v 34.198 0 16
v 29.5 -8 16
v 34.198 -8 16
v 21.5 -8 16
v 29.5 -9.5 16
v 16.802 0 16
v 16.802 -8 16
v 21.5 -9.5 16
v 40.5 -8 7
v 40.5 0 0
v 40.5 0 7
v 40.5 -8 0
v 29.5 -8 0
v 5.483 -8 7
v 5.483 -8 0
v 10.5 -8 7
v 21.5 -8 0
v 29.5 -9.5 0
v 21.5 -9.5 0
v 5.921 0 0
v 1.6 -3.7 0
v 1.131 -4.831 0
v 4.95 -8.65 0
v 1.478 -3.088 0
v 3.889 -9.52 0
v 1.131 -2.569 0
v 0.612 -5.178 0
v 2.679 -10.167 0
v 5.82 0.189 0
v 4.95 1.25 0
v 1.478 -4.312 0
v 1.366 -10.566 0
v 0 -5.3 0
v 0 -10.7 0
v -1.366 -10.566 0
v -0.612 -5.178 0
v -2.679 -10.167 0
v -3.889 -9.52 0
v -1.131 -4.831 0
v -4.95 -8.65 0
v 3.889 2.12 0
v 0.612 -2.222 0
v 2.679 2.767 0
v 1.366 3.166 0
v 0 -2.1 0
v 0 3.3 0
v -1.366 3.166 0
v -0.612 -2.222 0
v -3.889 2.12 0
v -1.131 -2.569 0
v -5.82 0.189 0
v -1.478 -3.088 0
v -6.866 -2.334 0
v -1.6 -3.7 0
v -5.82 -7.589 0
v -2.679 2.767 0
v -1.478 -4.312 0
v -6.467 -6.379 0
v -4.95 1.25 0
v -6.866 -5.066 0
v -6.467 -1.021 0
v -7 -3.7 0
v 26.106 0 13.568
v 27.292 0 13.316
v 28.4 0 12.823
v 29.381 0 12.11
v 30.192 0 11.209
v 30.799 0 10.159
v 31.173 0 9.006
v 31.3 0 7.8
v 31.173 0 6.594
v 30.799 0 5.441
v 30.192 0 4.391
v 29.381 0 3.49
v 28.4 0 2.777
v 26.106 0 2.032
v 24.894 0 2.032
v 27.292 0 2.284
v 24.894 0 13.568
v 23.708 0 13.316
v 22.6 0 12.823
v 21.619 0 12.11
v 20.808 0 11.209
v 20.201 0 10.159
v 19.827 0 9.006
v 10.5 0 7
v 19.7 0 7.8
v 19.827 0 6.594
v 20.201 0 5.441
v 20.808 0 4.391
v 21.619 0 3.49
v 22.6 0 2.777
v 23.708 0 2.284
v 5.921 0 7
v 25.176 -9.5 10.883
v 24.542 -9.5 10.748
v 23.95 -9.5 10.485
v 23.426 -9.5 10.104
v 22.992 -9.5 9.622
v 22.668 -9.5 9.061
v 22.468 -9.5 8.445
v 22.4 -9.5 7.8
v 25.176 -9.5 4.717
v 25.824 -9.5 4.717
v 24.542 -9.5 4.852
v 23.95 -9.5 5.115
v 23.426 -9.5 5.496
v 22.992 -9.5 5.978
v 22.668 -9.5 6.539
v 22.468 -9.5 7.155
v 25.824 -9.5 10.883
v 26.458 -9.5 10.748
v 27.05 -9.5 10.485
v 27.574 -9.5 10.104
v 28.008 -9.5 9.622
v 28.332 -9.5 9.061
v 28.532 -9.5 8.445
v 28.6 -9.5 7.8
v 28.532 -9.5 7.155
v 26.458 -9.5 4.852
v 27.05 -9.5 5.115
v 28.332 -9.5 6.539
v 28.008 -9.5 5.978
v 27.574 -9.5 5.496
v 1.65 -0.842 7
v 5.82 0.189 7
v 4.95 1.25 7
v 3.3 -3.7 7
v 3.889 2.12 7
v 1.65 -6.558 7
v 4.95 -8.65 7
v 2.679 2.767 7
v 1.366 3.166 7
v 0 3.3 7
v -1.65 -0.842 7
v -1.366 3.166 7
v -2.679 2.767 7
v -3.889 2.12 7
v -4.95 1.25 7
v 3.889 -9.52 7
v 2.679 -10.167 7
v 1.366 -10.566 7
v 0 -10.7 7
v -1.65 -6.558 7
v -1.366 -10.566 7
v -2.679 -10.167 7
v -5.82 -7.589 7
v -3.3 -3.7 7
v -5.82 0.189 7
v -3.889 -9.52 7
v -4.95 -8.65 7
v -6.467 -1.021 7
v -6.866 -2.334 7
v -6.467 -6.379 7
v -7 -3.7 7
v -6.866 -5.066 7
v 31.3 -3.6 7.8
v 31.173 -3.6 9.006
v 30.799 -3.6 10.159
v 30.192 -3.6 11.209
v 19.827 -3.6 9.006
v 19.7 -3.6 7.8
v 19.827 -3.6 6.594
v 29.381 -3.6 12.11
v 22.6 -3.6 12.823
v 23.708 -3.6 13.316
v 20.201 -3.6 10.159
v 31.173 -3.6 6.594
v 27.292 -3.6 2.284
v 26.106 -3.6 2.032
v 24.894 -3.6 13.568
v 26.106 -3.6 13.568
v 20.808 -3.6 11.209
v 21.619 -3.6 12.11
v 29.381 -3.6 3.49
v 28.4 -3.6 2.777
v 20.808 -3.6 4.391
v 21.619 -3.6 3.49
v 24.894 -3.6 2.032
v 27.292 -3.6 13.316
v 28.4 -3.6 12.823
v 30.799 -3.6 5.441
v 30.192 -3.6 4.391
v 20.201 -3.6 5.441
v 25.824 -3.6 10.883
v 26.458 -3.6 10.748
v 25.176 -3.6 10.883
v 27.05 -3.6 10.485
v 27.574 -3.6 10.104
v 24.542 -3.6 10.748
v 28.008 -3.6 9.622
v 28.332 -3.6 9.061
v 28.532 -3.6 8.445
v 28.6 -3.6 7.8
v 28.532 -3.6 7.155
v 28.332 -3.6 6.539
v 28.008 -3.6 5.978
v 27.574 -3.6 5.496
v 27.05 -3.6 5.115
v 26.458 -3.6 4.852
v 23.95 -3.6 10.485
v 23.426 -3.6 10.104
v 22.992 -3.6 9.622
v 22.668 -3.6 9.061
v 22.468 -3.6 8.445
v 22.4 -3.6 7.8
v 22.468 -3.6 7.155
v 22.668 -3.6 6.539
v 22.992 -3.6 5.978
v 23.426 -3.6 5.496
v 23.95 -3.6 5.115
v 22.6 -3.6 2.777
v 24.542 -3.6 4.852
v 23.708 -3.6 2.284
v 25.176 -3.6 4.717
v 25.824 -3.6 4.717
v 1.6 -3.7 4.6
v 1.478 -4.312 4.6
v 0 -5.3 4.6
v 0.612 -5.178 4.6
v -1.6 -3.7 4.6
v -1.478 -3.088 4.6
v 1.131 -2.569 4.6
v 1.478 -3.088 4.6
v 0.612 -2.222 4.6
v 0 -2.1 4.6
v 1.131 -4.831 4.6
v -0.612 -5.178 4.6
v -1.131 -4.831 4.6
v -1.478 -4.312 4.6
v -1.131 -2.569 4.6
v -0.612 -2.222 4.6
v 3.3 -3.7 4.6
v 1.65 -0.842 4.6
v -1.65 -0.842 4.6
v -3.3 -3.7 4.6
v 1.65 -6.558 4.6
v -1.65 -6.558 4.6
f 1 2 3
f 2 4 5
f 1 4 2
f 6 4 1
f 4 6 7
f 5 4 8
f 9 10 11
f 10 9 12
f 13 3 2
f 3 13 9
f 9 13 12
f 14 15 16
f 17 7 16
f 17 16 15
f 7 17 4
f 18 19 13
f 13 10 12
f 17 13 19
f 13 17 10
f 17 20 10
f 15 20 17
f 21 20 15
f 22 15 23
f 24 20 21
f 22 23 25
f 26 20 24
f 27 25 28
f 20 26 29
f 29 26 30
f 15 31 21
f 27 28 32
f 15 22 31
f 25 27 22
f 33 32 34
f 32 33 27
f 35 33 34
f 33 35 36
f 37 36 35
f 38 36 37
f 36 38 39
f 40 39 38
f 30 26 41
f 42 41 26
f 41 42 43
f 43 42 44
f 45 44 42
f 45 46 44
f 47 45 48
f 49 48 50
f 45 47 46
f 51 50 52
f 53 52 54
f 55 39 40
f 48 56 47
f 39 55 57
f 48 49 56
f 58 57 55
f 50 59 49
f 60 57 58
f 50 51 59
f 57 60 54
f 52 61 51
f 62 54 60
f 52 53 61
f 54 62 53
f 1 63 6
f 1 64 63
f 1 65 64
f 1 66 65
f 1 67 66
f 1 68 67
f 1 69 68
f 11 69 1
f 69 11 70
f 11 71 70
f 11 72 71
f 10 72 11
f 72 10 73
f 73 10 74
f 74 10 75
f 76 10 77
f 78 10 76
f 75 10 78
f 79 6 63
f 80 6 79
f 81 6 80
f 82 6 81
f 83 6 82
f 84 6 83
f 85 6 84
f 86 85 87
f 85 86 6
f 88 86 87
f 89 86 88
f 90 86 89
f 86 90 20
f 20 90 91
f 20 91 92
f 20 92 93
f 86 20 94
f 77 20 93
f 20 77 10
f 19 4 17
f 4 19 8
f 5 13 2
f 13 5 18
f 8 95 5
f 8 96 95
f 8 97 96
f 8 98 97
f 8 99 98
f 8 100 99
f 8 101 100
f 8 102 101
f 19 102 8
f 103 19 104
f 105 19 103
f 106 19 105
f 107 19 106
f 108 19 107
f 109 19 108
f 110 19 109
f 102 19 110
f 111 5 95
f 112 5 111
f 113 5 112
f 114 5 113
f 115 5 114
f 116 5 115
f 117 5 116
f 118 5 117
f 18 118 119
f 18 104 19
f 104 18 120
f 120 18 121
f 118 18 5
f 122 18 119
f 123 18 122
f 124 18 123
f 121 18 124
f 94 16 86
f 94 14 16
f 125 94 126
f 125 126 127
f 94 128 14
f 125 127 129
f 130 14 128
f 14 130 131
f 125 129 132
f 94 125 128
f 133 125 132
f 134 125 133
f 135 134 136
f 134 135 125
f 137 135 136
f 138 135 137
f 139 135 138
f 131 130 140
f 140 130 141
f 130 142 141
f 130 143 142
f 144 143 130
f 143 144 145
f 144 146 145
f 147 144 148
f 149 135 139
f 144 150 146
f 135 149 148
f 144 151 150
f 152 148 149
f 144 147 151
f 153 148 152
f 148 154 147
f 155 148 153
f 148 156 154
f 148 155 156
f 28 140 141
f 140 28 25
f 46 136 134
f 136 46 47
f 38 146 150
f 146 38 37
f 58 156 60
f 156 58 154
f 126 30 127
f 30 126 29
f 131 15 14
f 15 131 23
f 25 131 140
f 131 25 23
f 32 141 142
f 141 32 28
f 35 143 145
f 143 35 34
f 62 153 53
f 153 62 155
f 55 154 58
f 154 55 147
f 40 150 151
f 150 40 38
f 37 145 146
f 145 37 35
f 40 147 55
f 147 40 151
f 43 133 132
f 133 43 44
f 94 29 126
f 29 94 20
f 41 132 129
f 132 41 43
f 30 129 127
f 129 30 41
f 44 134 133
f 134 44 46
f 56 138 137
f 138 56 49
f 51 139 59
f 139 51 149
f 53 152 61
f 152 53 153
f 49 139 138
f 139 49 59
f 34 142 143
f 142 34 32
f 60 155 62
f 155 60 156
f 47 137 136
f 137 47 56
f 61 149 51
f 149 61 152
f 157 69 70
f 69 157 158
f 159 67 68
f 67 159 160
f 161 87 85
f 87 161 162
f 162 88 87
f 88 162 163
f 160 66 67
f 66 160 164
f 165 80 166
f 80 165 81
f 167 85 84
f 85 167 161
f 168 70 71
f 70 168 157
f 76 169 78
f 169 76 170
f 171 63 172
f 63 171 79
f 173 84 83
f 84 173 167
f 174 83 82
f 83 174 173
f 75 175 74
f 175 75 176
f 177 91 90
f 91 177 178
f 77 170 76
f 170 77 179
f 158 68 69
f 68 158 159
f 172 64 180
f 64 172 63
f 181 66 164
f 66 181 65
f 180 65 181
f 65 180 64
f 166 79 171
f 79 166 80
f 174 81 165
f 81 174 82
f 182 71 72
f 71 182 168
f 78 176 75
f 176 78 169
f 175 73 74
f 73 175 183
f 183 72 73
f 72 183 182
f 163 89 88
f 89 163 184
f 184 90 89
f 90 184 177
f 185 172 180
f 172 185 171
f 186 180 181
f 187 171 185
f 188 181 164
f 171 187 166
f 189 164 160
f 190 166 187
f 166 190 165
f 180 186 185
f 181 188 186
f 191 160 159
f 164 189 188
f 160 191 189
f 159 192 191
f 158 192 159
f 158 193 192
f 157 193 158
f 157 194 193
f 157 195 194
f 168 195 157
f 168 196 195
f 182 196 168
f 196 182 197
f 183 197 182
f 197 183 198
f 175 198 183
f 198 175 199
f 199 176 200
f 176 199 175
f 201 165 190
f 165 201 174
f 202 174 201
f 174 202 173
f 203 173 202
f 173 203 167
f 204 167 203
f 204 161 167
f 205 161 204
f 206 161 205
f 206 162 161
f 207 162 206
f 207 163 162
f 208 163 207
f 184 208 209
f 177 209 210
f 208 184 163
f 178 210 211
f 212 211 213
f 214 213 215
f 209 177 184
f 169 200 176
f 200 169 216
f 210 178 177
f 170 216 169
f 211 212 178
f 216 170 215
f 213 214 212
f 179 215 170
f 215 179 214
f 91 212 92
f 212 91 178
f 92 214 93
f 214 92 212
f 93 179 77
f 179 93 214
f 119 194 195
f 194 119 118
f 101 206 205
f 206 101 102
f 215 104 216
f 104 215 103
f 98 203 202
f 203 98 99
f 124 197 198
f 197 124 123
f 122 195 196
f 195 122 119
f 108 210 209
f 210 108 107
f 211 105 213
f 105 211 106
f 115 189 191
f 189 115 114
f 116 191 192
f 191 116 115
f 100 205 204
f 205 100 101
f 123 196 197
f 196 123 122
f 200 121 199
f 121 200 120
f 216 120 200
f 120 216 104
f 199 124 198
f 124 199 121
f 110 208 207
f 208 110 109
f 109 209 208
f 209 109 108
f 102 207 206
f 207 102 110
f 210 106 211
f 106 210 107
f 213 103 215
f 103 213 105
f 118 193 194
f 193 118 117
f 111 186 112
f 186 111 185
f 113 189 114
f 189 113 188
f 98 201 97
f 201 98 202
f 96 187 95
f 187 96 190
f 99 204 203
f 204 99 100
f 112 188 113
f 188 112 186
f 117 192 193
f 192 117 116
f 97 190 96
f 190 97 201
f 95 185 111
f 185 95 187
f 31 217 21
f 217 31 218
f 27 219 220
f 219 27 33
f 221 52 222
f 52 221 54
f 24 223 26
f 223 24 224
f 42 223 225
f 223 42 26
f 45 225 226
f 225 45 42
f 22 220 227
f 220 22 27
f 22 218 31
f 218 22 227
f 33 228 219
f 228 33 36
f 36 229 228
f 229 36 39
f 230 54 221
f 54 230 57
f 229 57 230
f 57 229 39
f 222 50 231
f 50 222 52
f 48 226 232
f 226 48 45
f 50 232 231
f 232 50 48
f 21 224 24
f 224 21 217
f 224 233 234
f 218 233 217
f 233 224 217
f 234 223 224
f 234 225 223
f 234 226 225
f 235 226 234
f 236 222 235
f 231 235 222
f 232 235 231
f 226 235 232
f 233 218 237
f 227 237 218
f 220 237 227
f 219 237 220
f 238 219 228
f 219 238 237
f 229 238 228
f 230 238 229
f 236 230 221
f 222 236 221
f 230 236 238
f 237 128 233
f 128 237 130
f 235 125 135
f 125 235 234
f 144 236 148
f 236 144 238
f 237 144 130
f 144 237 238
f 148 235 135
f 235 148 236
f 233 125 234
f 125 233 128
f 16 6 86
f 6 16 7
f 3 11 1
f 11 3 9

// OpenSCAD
// file: ../configuration.scad
/*
	Konfiguracni soubor 3D tiskarny RebeliX X2
	
	Sledujte nas na:		  
			www.RepRap4U.cz
			www.facebook.com/RebeliX.cz
			https://twitter.com/reprap4u
			https://plus.google.com/+Reprap4uCz-3Dtiskarna-RebeliX
*/

/*================ Slic3r nastaveni ==========================*/

// Vyska vrstvy pro tisknuti dilu [mm]
layer_height = 0.3;

// Sirka vytlacovaneho materialu [mm]
extrusion_width = 0.66; //Slic3r->Print Settings->Advanced->Default extrusion width

/*==================== M6 sroub ==============================*/

// Rezerva prumeru hlavy sroubu [mm]
space = 1;

// Prumer hlavy M6 sroubu (pricte se rezerva) [mm]
M6_head_diameter = 10.6+space;
//M6_head_diameter = 12+space;

// Vyska hlavy M6 sroubu (dulezite pro zapusteni hlavy sroubu do plastu) [mm]
M6_head_height = 3.6;
//M6_head_height = 4.5;

// Delka sroubu M6 [mm]
// M6x12
M6_lenght = 12;

/*=================== Nastaveni dilu =========================*/

// Posun Z zakladny
z_base_offset = 11;

// Tloustka rohovych spojek
// 5 mm => sroub M6x14 s podlozkou
// 3 mm => sroub M6x12 s podlozkou
coupler_thickness = 5;

// Prumer 8mm tyce
rod_8mm_d = 8.2;

// Posun drzacku mezi x-motor a x-end
x_holder_position = 6.5;

/*======================== Motory ============================*/

// Delka motoru (ovlivni dily a delky tyci pro osy Z a Y)
//SX17-1003LQFE (doporuceno hlavne na osu Z)
motor_length = 29.5;
//SX17-1003 (doporuceno hlavne na osu Z), SX17-0503LQEF
//motor_length = 34;
//SX17-1005
//motor_length = 40;
//SX17-0905 - zde je jiz problem s velkou vyskou motoru na ose Z - musi se upravit endstop-holder
//motor_length = 48;

/*================ Remeny a remenicky ========================*/

// GT2 
belt_tooth_distance = 2;
belt_tooth_ratio = 0.5;

// T2.5
//belt_tooth_distance = 2.5;
//belt_tooth_ratio = 0.68;
// main file
// RebeliX
//
// endstop-adjust
// GNU GPL v3
// Martin Neruda <neruda@reprap4u.cz>
// http://www.reprap4u.cz

include <../configuration.scad>

vyska = 6;
sirka_steny = 8;
delka_ramene = 10.5;
y_offset = 3.7;

module endstop_base(delka_ramen,vyska,sirka_steny){
    // Zakladna endstopu
	translate([delka_ramene,0,0]) cube([30,sirka_steny,16]);
	// Vyrez pro profil
	translate([15-4+delka_ramene,sirka_steny-1.5,0]) cube([8,3,16]);
	translate([0,0,0]) cube([delka_ramene+30,8,vyska]);
	// Kruh okolo sroubu
	translate([0,y_offset,0]) rotate([0,0,0]) cylinder(r=7,h=vyska,$fn=32);
}

module endstop_cuts(delka,vyska,sirka_steny){
	// Otvor pro M6 sroub
	translate([15+delka_ramene,M6_head_height,2+M6_head_diameter/2]) rotate([90,0,0]) cylinder(r=M6_head_diameter/2,h=10,$fn=30);
	translate([15+delka_ramene,0,2+M6_head_diameter/2]) rotate([-90,0,0]) cylinder(r=3.1,h=20,$fn=30);
	// Otvor pro M3 sroub
	translate([0,y_offset,0]) rotate([0,0,0]) cylinder(r=1.6,h=20,$fn=16,center=true);
	translate([0,y_offset,vyska-2.4]) cylinder(h = 2.5, r=3.3, $fn=6);		
	// Seriznuti rohu
	translate([delka_ramene,-0.1,vyska]) rotate([0,-55,0]) cube([20,10,10]);
	translate([30+delka_ramene,-0.1,vyska]) rotate([0,-35,0]) cube([10,10,20]);	
}

mirror([0,1,0]) difference(){
	endstop_base(34,7,8);
	endstop_cuts(15,7,8);
}
